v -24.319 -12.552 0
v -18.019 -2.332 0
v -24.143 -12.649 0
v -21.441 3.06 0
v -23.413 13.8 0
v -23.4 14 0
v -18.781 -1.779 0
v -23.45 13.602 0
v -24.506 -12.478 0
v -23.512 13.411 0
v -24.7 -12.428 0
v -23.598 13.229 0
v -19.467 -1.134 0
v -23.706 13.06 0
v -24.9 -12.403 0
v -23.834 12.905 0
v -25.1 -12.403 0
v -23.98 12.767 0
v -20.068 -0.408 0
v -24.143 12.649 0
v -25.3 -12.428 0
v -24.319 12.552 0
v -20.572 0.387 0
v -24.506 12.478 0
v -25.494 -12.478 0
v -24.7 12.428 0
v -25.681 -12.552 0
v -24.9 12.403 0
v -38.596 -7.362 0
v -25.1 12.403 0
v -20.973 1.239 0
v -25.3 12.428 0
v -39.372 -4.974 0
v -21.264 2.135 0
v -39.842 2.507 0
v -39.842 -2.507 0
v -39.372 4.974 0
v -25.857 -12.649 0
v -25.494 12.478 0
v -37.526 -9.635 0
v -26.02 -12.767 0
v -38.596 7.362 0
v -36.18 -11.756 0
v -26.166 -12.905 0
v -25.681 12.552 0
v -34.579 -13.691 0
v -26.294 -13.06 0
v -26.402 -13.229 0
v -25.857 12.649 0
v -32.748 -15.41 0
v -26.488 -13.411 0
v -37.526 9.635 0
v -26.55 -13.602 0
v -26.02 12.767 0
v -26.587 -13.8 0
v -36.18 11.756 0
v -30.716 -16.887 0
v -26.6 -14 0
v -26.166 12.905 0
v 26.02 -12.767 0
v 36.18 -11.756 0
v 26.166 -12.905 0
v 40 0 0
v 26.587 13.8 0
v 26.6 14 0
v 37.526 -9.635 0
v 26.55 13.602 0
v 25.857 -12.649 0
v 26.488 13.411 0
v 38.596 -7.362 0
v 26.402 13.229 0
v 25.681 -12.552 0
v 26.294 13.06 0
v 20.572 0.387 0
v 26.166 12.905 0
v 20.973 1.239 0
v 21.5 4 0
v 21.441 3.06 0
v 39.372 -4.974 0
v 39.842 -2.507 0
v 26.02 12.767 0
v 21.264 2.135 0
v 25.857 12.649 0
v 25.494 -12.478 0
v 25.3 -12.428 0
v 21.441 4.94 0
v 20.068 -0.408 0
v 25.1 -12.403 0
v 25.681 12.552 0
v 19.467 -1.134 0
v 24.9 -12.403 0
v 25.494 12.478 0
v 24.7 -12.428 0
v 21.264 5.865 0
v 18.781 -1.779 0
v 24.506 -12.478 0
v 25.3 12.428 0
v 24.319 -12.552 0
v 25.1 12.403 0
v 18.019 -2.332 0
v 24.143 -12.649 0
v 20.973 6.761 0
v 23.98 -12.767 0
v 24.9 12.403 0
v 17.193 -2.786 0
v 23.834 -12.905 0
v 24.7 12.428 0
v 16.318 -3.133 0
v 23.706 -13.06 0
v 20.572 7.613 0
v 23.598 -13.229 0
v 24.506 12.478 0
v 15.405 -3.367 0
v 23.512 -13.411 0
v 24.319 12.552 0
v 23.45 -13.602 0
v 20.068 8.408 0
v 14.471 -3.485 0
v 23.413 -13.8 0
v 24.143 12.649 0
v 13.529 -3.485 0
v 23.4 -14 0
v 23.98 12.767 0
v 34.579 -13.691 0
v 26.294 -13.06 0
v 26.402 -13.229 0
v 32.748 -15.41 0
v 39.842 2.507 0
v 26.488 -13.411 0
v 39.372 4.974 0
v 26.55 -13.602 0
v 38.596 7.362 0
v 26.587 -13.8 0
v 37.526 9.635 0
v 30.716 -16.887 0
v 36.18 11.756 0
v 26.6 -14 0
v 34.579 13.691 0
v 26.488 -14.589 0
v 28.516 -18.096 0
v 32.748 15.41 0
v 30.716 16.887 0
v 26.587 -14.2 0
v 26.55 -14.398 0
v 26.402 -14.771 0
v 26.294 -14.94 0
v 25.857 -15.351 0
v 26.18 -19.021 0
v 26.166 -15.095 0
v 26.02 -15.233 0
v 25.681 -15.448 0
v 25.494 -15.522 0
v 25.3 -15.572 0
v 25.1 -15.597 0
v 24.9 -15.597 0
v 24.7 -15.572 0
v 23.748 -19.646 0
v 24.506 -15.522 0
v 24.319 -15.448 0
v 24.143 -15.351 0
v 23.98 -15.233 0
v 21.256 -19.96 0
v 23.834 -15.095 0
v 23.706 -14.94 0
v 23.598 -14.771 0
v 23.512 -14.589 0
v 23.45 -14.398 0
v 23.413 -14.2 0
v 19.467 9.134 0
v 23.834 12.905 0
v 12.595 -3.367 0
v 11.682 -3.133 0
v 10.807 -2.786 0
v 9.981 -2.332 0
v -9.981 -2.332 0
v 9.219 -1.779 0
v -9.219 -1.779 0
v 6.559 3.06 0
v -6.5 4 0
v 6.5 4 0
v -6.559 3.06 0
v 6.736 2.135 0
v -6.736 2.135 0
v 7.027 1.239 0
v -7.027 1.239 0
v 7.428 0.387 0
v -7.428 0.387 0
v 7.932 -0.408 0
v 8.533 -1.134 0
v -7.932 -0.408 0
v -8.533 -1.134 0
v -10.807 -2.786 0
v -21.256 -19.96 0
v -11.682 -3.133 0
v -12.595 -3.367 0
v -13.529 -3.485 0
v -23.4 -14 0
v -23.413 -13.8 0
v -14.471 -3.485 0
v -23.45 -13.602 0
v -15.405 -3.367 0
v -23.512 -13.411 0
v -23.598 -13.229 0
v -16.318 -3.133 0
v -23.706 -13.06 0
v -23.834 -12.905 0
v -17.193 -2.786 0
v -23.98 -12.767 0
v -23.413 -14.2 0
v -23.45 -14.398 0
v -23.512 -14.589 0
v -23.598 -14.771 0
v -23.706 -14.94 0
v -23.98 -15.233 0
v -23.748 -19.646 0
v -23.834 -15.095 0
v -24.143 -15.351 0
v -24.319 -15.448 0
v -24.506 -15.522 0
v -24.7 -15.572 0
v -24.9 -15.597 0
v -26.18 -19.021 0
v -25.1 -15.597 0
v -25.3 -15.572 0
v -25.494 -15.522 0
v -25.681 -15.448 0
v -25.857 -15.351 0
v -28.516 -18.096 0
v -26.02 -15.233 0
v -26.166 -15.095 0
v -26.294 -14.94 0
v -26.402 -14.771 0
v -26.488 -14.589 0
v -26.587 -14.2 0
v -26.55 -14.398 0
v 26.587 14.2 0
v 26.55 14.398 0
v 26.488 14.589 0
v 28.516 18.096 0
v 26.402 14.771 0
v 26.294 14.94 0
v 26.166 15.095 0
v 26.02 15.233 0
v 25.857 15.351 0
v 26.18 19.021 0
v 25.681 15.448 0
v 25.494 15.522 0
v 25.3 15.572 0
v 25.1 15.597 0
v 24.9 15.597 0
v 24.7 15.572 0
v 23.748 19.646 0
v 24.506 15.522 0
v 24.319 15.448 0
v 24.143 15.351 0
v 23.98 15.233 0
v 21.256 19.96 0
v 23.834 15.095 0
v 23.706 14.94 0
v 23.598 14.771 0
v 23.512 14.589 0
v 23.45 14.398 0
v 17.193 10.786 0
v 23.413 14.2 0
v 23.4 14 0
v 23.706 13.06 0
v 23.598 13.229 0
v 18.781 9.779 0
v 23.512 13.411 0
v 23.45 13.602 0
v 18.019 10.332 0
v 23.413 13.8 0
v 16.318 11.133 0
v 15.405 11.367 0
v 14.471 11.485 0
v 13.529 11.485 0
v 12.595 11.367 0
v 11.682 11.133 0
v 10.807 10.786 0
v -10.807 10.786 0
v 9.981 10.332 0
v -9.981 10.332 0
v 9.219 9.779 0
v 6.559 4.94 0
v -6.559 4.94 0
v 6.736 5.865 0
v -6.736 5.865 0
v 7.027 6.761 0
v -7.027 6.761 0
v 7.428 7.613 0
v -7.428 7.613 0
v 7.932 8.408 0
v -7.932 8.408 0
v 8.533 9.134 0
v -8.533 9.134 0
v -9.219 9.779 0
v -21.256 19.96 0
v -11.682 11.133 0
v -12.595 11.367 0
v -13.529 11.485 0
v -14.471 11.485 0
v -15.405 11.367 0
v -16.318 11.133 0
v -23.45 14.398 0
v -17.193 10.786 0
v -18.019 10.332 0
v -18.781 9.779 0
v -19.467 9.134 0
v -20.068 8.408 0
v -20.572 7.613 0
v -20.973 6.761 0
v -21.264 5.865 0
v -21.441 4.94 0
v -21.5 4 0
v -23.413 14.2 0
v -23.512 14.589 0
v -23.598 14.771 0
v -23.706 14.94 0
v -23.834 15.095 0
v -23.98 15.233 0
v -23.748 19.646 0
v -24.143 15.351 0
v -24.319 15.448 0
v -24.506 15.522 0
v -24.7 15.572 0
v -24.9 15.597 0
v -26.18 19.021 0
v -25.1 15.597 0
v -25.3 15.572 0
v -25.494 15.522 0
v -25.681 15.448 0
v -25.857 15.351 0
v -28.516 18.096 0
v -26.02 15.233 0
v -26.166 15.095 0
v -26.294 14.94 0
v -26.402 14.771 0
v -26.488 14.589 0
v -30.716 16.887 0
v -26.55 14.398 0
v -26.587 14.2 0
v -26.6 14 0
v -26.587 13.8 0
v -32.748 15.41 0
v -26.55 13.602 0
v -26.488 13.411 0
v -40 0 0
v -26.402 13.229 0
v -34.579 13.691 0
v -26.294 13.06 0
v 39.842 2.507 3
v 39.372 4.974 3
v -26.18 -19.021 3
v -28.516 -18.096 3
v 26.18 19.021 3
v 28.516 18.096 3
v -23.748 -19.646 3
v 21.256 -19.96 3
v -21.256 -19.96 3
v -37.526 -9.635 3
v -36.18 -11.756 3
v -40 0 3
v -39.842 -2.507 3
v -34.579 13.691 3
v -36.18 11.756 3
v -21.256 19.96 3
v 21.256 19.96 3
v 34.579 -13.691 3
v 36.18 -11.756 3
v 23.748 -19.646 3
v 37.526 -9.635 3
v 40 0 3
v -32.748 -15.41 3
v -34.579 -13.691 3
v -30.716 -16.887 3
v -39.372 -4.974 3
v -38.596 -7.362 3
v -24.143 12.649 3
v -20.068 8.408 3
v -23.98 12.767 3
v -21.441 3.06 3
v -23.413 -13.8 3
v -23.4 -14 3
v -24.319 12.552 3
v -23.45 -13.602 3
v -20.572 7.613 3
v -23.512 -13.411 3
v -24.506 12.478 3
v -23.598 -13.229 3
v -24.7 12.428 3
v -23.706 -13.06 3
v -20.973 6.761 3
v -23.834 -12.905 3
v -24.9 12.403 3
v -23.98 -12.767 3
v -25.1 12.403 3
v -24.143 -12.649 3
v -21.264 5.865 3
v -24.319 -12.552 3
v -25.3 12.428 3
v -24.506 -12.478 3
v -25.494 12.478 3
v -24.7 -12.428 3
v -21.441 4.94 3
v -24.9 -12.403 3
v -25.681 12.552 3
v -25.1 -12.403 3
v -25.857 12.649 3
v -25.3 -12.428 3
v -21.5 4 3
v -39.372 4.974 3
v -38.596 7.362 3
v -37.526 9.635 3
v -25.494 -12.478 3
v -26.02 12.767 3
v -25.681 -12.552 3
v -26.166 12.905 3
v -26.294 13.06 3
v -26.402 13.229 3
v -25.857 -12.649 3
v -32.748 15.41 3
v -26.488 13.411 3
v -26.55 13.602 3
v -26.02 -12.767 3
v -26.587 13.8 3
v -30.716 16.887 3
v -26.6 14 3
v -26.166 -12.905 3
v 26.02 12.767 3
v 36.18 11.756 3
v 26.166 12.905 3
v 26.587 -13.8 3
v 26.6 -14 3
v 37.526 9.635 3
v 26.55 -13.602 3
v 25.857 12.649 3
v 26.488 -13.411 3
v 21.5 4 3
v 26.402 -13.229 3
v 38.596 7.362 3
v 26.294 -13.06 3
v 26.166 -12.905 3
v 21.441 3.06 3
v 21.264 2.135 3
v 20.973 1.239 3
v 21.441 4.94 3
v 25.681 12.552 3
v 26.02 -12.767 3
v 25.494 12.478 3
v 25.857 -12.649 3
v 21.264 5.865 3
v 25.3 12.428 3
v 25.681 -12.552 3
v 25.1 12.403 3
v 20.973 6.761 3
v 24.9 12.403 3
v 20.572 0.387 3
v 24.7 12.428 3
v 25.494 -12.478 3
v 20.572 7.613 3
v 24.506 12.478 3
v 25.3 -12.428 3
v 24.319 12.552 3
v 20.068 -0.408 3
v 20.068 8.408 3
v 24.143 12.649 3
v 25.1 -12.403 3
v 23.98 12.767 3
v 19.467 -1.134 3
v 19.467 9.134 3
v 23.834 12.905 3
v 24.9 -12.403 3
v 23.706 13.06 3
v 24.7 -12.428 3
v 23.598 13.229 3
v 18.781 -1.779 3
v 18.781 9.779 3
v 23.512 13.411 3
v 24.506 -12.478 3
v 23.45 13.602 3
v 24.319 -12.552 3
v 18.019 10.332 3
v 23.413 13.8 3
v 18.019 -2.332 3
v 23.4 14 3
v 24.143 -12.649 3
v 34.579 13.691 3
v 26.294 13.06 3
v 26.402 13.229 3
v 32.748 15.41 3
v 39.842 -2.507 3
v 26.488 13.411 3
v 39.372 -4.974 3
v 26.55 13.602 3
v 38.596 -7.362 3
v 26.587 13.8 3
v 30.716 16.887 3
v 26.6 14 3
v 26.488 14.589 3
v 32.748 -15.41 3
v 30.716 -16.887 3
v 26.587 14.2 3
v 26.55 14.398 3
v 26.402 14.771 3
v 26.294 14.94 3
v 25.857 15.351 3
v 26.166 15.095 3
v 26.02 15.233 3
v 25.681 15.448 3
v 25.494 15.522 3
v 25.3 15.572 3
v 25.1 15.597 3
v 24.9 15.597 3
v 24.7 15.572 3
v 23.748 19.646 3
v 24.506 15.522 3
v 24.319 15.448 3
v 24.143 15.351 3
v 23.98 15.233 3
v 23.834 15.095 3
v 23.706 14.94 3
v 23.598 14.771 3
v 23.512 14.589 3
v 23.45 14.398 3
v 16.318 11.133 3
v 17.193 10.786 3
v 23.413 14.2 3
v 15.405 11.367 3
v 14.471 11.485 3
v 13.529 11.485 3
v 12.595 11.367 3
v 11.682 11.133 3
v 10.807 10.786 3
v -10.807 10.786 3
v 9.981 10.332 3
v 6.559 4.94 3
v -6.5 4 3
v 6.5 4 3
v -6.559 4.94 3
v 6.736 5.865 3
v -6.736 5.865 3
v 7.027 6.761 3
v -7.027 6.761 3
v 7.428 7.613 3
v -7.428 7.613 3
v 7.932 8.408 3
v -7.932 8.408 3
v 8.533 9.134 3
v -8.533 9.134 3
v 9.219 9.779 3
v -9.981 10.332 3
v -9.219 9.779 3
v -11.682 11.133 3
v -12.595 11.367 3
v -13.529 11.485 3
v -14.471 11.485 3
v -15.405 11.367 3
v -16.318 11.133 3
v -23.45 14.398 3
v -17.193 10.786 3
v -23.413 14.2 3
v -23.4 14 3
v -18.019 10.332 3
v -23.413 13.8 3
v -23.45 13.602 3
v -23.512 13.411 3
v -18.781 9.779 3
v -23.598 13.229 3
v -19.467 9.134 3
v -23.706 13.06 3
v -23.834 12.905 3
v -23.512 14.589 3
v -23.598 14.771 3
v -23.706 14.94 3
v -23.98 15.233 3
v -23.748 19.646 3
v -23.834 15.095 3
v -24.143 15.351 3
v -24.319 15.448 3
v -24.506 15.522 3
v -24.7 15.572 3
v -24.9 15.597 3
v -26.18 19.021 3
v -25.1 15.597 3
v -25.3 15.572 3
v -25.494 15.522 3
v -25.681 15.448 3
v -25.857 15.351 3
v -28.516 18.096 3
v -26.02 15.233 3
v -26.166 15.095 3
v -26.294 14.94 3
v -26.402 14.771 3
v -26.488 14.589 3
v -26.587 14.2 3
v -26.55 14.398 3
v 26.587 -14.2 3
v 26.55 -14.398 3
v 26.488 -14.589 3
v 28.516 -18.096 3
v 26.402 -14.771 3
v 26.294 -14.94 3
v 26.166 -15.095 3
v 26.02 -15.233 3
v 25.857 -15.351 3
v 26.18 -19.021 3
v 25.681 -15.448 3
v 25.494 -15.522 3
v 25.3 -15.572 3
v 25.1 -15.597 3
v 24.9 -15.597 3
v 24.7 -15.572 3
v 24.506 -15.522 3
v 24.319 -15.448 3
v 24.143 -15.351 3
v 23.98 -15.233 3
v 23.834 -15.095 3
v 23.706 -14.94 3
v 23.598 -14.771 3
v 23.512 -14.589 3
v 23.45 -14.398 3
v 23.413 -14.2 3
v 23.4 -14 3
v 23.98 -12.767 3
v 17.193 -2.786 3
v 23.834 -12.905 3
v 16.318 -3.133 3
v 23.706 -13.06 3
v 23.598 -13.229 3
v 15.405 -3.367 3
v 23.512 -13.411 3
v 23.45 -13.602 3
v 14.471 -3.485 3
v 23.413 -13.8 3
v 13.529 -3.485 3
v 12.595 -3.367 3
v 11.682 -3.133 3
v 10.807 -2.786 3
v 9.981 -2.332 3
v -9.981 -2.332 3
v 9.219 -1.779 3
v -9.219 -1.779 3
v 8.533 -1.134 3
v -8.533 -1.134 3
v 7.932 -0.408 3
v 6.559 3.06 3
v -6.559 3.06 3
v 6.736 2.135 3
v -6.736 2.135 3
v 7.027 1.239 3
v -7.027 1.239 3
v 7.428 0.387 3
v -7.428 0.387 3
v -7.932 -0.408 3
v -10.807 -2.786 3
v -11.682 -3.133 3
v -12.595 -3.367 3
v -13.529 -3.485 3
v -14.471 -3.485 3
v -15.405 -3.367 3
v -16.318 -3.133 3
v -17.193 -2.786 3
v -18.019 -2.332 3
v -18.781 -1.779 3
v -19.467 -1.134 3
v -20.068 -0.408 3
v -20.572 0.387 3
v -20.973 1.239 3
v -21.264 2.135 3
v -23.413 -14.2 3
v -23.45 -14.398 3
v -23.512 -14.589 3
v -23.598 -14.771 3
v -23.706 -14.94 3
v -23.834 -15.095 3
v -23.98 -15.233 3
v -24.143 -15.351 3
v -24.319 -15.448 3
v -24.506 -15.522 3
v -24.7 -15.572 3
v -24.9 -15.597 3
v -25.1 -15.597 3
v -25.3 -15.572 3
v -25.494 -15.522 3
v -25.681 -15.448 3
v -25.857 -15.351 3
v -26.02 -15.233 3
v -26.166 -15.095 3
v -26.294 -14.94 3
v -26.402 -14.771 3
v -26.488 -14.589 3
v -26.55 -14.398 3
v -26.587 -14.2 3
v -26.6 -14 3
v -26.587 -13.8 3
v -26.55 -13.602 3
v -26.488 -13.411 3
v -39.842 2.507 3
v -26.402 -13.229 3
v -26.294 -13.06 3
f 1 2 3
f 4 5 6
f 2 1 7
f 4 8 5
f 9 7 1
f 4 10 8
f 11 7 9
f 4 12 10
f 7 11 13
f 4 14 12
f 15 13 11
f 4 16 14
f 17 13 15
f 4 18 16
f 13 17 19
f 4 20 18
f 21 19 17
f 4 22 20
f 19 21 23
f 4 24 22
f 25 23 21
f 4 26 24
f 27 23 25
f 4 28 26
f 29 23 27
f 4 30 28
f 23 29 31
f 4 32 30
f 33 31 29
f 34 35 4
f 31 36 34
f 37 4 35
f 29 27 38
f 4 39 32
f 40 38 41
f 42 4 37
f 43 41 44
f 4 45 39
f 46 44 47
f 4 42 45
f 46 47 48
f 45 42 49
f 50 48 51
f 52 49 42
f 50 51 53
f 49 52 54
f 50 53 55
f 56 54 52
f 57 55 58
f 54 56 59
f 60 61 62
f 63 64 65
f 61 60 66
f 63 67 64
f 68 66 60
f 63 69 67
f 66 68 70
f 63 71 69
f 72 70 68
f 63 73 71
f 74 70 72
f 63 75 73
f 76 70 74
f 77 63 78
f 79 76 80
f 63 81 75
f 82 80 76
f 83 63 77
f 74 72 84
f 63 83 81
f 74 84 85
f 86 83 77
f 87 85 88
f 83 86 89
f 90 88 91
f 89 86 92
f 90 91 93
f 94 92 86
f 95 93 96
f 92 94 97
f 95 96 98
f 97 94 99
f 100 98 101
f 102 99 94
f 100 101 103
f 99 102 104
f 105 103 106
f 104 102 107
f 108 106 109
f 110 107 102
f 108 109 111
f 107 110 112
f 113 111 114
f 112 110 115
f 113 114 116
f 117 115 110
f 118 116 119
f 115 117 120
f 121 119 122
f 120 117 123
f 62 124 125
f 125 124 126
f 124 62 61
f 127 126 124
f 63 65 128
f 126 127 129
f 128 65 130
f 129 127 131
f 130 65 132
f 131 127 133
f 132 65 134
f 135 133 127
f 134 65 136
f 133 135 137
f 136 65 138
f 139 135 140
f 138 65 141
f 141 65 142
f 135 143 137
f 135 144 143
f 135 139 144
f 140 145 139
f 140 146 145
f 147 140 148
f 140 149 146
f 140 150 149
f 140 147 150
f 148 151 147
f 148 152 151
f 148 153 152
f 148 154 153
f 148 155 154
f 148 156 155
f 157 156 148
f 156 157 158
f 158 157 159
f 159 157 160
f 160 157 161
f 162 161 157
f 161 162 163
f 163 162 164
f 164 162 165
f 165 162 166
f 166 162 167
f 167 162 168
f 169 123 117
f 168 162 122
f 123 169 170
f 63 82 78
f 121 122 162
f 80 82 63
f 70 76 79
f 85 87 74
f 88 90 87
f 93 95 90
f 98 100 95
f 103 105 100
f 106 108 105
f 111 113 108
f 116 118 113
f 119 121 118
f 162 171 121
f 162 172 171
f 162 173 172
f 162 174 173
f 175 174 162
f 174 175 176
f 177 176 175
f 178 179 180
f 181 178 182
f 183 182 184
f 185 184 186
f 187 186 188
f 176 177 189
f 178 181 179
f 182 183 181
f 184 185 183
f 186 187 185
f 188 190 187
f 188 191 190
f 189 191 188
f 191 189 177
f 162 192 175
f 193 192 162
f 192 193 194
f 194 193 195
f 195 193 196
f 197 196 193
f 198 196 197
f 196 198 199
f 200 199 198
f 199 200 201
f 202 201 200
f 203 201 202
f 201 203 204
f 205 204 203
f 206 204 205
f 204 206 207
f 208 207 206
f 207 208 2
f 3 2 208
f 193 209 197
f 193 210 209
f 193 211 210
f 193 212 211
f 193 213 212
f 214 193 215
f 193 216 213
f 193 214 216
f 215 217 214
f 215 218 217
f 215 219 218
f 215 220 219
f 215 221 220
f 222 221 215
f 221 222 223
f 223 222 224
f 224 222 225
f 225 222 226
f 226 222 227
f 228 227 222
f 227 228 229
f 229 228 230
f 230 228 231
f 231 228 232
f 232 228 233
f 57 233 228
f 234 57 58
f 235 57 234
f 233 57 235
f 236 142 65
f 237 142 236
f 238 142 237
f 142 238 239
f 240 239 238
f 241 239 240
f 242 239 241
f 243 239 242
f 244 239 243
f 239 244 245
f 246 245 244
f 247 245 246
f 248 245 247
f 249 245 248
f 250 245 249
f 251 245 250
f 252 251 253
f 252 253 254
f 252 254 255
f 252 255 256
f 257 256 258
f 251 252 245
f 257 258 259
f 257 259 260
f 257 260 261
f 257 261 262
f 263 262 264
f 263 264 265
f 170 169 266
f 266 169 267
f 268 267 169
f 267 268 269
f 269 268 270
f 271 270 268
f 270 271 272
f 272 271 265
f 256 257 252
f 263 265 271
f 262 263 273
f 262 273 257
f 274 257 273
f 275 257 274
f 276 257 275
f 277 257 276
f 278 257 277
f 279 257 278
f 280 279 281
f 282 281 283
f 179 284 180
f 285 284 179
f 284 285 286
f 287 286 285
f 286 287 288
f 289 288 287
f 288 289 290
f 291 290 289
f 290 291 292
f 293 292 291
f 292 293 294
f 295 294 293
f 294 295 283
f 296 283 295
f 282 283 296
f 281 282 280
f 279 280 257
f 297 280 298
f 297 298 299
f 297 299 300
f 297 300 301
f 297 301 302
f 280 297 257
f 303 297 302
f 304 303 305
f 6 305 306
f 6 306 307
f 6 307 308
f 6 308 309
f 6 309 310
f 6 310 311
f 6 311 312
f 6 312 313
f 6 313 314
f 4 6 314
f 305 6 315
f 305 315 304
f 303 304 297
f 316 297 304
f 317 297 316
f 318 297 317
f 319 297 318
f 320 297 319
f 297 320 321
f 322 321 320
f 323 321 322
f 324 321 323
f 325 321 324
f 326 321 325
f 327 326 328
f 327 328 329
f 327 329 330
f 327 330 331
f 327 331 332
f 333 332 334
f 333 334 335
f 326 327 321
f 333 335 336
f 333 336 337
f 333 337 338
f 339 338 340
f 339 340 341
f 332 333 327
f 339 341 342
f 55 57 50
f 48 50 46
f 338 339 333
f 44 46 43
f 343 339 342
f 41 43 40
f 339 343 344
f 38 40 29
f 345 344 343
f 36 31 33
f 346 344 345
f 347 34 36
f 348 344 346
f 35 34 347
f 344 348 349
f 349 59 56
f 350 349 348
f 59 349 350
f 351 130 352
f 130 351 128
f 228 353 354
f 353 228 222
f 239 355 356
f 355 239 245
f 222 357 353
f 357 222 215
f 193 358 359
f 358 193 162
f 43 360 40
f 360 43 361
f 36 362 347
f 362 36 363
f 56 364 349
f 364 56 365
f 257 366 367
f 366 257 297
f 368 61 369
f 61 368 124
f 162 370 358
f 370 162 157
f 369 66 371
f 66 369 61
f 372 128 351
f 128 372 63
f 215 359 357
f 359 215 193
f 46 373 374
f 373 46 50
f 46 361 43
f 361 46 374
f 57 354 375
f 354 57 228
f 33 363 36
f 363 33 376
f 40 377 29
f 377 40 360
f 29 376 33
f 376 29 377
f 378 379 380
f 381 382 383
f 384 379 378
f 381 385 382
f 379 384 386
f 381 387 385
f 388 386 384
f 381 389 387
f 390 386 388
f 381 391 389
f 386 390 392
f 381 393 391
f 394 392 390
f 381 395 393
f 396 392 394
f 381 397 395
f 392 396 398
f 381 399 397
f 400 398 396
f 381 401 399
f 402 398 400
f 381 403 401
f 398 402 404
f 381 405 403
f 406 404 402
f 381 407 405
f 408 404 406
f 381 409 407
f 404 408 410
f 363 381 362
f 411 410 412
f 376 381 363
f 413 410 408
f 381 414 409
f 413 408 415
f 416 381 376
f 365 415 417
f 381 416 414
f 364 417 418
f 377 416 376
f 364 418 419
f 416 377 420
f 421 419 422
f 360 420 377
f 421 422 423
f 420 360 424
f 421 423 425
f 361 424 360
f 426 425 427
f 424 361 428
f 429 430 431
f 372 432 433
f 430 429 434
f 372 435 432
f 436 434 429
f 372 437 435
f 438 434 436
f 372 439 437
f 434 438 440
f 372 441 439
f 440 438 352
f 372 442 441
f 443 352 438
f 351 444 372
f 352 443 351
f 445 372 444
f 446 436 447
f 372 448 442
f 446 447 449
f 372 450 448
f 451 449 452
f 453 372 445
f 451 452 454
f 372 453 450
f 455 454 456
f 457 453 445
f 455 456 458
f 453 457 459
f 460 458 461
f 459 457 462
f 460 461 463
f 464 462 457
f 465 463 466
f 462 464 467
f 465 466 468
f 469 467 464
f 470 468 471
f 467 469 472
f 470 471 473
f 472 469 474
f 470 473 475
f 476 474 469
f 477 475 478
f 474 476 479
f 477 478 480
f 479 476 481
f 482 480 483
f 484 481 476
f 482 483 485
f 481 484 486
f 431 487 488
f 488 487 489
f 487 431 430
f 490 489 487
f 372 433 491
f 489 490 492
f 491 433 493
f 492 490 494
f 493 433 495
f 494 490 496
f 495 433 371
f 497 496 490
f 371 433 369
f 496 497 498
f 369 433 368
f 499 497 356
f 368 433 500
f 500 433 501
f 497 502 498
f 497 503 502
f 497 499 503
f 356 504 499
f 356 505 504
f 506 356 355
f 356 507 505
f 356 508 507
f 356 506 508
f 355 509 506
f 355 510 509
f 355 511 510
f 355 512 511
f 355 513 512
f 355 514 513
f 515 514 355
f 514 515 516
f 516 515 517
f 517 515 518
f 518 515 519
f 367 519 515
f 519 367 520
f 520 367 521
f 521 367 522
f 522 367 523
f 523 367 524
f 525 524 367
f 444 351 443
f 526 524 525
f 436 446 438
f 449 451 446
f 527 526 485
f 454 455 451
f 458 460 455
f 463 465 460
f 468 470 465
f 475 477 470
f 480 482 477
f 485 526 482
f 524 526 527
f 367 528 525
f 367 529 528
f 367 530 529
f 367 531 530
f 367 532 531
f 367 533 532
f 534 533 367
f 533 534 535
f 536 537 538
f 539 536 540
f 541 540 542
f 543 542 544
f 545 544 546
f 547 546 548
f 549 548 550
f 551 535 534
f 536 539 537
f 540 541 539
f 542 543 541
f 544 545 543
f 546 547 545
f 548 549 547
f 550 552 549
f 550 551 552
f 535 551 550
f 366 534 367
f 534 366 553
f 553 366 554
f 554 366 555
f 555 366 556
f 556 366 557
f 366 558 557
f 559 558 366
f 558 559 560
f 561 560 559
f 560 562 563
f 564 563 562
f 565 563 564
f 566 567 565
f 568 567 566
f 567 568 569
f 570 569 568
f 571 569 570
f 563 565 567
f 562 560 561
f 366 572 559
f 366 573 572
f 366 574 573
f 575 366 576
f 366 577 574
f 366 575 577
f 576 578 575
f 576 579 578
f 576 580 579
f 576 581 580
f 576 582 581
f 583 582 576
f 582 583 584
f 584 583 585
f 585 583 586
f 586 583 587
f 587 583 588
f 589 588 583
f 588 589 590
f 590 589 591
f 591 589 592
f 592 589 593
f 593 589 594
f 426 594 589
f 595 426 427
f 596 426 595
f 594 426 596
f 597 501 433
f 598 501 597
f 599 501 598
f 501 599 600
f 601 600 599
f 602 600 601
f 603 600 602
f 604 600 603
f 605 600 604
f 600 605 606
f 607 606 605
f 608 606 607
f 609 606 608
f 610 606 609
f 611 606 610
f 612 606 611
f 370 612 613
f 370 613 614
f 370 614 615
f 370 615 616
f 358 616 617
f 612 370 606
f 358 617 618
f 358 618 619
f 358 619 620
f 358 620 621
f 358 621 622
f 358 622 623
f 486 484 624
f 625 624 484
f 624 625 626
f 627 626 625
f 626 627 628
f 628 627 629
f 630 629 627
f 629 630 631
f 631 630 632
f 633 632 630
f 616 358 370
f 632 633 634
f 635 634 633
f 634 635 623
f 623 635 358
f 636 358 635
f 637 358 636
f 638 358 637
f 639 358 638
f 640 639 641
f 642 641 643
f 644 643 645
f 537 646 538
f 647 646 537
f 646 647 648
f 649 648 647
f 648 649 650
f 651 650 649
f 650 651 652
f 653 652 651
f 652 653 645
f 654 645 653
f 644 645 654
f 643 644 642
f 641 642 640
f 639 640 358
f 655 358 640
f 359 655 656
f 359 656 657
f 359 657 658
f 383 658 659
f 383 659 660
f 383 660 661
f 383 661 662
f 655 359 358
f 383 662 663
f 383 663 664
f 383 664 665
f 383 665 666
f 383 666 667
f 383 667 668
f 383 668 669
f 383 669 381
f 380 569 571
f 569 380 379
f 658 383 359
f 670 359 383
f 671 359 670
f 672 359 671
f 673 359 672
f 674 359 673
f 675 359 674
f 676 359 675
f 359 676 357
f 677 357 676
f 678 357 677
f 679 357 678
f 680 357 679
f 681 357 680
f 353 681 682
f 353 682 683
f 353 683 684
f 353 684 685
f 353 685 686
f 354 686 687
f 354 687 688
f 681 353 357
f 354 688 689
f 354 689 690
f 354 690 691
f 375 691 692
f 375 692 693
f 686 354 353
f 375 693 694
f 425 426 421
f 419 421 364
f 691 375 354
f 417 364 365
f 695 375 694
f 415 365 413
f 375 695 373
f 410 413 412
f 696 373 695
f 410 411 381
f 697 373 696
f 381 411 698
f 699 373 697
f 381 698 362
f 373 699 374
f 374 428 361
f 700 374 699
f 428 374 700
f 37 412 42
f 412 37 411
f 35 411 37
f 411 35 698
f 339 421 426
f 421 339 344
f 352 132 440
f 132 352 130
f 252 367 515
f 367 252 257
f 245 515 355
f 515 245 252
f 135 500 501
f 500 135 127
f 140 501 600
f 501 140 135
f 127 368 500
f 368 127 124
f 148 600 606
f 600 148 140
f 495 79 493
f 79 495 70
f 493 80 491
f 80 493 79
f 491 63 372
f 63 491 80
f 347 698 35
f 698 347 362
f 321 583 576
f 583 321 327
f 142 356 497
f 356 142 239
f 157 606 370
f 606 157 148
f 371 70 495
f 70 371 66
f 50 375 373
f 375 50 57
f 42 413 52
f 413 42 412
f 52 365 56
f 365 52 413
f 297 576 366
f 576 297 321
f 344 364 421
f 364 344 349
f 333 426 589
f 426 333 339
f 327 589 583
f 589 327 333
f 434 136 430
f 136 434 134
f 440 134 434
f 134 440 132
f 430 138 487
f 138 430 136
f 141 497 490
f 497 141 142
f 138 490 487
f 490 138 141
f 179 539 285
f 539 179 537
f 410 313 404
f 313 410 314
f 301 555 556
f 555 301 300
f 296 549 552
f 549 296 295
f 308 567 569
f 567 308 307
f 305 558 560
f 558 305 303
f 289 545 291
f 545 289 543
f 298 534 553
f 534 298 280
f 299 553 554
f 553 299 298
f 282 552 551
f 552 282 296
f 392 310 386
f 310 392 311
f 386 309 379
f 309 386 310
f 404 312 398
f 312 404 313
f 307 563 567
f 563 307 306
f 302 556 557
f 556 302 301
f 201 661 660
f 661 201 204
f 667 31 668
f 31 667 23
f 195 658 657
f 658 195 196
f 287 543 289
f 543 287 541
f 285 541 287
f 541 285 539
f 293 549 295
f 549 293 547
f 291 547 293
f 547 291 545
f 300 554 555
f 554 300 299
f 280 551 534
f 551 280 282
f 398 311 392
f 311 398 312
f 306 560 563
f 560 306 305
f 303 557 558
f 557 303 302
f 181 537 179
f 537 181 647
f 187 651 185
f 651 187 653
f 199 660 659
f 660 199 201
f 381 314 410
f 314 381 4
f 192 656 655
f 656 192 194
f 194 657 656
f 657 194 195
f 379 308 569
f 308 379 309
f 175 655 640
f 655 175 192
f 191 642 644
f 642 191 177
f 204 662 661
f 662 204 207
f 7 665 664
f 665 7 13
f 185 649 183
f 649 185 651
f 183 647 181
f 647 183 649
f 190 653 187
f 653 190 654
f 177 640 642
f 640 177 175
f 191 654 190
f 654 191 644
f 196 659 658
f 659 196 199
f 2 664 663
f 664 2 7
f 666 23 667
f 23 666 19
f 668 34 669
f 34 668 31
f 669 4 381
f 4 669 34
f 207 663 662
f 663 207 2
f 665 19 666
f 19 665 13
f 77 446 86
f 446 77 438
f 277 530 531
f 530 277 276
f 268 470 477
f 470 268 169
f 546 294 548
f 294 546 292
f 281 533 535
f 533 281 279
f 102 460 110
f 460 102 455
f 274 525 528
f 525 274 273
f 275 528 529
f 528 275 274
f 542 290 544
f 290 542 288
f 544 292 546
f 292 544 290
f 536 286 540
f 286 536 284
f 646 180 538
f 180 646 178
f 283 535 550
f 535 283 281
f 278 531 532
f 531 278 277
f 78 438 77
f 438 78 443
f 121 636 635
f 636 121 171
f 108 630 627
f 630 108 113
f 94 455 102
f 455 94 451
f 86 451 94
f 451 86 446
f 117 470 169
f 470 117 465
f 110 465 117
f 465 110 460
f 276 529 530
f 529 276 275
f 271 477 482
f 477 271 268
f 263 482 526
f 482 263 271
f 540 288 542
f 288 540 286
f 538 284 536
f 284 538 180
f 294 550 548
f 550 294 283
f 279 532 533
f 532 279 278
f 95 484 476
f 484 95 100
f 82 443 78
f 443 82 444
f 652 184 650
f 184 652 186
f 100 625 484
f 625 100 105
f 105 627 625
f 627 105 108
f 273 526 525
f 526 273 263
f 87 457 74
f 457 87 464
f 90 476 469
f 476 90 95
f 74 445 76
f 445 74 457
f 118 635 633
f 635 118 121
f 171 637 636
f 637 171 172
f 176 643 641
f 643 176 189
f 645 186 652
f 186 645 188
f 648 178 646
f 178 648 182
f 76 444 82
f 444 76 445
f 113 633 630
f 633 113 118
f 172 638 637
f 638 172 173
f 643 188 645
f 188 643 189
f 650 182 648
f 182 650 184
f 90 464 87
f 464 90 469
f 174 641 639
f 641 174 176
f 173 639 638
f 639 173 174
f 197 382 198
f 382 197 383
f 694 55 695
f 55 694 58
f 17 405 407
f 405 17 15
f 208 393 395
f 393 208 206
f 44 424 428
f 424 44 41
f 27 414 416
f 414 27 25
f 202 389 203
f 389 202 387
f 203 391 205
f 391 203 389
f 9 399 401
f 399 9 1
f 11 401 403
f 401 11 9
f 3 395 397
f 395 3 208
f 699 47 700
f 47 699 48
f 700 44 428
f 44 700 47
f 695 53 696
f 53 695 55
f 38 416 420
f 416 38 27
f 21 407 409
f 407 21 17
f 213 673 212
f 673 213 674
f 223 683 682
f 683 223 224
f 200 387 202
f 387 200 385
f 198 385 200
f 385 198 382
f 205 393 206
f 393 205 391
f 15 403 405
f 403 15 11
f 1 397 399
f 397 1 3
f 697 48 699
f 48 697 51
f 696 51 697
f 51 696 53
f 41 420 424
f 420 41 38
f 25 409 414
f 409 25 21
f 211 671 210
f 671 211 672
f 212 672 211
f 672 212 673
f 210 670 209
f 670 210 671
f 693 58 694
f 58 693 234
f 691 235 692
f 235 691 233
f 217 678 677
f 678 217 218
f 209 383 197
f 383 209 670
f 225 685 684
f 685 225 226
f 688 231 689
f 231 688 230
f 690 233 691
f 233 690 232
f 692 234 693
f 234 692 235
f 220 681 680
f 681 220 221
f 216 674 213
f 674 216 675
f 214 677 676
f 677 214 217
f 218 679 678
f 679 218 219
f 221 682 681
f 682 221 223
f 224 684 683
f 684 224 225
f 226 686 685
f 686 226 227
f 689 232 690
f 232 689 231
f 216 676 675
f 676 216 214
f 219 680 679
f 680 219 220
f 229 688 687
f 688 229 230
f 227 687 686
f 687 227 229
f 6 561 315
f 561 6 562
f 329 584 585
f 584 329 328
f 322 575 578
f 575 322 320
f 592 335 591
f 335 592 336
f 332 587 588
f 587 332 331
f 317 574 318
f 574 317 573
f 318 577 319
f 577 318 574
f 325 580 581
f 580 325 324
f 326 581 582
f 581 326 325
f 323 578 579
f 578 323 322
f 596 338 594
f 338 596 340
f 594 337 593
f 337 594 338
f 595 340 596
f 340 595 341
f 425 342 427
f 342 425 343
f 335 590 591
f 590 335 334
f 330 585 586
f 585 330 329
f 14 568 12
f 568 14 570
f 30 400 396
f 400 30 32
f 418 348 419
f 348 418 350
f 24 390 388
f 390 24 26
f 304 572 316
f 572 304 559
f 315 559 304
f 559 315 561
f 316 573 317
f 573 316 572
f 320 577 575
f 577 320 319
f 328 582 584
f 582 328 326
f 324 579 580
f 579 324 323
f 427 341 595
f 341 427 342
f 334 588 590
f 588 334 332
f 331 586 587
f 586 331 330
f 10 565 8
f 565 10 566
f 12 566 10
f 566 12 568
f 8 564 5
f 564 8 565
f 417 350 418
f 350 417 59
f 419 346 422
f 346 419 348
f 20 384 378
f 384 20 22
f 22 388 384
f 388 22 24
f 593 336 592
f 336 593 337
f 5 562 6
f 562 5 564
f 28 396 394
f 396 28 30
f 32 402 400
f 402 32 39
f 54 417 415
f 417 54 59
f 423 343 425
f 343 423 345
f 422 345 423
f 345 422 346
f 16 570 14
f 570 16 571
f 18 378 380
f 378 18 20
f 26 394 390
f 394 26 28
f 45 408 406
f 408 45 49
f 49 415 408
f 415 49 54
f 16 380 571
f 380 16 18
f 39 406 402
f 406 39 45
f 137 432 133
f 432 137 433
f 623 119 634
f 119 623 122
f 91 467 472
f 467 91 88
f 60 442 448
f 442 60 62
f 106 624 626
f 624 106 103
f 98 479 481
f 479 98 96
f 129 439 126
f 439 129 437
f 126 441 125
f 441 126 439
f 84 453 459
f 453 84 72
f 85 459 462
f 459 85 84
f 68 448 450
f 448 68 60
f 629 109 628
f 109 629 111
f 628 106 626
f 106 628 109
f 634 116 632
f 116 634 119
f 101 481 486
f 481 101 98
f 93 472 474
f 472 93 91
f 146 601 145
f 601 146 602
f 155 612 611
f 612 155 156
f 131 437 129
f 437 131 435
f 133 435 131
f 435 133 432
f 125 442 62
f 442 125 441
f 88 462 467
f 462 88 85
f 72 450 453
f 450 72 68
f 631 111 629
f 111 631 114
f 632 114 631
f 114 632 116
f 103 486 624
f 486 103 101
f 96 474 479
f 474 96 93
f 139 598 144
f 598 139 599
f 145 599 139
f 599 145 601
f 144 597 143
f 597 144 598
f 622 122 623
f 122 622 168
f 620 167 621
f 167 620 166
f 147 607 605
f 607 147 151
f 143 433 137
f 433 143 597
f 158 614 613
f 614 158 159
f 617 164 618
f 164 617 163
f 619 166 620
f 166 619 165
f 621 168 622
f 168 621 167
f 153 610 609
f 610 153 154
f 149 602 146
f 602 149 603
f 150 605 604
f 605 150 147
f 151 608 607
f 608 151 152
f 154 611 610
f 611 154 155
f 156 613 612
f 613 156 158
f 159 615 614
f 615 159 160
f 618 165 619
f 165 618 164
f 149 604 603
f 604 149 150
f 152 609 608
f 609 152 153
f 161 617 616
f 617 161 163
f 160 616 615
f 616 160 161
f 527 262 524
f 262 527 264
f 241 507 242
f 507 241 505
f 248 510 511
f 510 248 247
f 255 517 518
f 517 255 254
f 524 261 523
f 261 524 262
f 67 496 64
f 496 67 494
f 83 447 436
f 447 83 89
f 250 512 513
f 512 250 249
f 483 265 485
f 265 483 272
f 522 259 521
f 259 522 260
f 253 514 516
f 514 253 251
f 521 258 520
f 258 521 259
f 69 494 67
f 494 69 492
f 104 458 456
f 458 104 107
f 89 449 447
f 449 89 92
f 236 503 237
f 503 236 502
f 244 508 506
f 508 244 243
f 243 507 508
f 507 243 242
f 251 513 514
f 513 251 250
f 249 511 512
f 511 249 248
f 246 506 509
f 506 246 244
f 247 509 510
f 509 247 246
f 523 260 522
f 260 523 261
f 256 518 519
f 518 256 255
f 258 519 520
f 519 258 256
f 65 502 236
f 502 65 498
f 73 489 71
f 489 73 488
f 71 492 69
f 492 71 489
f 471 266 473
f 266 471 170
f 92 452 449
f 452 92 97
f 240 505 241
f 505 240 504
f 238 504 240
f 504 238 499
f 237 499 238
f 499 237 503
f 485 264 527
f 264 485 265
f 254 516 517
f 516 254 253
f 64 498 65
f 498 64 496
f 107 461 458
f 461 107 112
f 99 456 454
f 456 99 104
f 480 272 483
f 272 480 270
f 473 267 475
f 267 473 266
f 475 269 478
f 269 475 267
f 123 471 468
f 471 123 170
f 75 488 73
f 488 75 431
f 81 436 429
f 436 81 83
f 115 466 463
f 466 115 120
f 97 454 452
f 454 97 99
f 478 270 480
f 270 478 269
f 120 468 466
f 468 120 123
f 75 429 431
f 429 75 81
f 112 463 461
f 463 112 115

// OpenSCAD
// file: params.scad
  base = 0.0;
  length = 50.0;
  len2 = length/2.0;
  width = 28.0;
  w2 = width/2.0;
  height = 12.0;
  thickness = 3.0;
  th2 = thickness/2.0;
  x1 = 25.0;
  y1 = 11.5;
  th_plate = 3.0;

  // depth of threadable hole
  scdepth = 4.0;

  // m3 screws
  rm3small = 1.4;  // threadable hole
  rm3large = 1.6;  // passthrough hole
// main file
$fn=50;
include <params.scad>;
module ValvePlate() {
  difference() {
    hull(){
        translate([-20.0,0.0,0.0])cylinder(r=20, h=th_plate);
        translate([20.0,0.0,0.0])cylinder(r=20, h=th_plate);
    };
    translate([-14.0,4.0,-0.01])cylinder(r=7.5, h=5);
    translate([14.0,4.0,-0.01])cylinder(r=7.5, h=5);

    translate([-len2,-w2,base-0.01])cylinder(r=rm3large, h=scdepth);
    translate([-len2,w2,base-0.01])cylinder(r=rm3large, h=scdepth);
    translate([len2,-w2,base-0.01])cylinder(r=rm3large, h=scdepth);
    translate([len2,w2,base-0.01])cylinder(r=rm3large, h=scdepth);

  };
};
ValvePlate();
